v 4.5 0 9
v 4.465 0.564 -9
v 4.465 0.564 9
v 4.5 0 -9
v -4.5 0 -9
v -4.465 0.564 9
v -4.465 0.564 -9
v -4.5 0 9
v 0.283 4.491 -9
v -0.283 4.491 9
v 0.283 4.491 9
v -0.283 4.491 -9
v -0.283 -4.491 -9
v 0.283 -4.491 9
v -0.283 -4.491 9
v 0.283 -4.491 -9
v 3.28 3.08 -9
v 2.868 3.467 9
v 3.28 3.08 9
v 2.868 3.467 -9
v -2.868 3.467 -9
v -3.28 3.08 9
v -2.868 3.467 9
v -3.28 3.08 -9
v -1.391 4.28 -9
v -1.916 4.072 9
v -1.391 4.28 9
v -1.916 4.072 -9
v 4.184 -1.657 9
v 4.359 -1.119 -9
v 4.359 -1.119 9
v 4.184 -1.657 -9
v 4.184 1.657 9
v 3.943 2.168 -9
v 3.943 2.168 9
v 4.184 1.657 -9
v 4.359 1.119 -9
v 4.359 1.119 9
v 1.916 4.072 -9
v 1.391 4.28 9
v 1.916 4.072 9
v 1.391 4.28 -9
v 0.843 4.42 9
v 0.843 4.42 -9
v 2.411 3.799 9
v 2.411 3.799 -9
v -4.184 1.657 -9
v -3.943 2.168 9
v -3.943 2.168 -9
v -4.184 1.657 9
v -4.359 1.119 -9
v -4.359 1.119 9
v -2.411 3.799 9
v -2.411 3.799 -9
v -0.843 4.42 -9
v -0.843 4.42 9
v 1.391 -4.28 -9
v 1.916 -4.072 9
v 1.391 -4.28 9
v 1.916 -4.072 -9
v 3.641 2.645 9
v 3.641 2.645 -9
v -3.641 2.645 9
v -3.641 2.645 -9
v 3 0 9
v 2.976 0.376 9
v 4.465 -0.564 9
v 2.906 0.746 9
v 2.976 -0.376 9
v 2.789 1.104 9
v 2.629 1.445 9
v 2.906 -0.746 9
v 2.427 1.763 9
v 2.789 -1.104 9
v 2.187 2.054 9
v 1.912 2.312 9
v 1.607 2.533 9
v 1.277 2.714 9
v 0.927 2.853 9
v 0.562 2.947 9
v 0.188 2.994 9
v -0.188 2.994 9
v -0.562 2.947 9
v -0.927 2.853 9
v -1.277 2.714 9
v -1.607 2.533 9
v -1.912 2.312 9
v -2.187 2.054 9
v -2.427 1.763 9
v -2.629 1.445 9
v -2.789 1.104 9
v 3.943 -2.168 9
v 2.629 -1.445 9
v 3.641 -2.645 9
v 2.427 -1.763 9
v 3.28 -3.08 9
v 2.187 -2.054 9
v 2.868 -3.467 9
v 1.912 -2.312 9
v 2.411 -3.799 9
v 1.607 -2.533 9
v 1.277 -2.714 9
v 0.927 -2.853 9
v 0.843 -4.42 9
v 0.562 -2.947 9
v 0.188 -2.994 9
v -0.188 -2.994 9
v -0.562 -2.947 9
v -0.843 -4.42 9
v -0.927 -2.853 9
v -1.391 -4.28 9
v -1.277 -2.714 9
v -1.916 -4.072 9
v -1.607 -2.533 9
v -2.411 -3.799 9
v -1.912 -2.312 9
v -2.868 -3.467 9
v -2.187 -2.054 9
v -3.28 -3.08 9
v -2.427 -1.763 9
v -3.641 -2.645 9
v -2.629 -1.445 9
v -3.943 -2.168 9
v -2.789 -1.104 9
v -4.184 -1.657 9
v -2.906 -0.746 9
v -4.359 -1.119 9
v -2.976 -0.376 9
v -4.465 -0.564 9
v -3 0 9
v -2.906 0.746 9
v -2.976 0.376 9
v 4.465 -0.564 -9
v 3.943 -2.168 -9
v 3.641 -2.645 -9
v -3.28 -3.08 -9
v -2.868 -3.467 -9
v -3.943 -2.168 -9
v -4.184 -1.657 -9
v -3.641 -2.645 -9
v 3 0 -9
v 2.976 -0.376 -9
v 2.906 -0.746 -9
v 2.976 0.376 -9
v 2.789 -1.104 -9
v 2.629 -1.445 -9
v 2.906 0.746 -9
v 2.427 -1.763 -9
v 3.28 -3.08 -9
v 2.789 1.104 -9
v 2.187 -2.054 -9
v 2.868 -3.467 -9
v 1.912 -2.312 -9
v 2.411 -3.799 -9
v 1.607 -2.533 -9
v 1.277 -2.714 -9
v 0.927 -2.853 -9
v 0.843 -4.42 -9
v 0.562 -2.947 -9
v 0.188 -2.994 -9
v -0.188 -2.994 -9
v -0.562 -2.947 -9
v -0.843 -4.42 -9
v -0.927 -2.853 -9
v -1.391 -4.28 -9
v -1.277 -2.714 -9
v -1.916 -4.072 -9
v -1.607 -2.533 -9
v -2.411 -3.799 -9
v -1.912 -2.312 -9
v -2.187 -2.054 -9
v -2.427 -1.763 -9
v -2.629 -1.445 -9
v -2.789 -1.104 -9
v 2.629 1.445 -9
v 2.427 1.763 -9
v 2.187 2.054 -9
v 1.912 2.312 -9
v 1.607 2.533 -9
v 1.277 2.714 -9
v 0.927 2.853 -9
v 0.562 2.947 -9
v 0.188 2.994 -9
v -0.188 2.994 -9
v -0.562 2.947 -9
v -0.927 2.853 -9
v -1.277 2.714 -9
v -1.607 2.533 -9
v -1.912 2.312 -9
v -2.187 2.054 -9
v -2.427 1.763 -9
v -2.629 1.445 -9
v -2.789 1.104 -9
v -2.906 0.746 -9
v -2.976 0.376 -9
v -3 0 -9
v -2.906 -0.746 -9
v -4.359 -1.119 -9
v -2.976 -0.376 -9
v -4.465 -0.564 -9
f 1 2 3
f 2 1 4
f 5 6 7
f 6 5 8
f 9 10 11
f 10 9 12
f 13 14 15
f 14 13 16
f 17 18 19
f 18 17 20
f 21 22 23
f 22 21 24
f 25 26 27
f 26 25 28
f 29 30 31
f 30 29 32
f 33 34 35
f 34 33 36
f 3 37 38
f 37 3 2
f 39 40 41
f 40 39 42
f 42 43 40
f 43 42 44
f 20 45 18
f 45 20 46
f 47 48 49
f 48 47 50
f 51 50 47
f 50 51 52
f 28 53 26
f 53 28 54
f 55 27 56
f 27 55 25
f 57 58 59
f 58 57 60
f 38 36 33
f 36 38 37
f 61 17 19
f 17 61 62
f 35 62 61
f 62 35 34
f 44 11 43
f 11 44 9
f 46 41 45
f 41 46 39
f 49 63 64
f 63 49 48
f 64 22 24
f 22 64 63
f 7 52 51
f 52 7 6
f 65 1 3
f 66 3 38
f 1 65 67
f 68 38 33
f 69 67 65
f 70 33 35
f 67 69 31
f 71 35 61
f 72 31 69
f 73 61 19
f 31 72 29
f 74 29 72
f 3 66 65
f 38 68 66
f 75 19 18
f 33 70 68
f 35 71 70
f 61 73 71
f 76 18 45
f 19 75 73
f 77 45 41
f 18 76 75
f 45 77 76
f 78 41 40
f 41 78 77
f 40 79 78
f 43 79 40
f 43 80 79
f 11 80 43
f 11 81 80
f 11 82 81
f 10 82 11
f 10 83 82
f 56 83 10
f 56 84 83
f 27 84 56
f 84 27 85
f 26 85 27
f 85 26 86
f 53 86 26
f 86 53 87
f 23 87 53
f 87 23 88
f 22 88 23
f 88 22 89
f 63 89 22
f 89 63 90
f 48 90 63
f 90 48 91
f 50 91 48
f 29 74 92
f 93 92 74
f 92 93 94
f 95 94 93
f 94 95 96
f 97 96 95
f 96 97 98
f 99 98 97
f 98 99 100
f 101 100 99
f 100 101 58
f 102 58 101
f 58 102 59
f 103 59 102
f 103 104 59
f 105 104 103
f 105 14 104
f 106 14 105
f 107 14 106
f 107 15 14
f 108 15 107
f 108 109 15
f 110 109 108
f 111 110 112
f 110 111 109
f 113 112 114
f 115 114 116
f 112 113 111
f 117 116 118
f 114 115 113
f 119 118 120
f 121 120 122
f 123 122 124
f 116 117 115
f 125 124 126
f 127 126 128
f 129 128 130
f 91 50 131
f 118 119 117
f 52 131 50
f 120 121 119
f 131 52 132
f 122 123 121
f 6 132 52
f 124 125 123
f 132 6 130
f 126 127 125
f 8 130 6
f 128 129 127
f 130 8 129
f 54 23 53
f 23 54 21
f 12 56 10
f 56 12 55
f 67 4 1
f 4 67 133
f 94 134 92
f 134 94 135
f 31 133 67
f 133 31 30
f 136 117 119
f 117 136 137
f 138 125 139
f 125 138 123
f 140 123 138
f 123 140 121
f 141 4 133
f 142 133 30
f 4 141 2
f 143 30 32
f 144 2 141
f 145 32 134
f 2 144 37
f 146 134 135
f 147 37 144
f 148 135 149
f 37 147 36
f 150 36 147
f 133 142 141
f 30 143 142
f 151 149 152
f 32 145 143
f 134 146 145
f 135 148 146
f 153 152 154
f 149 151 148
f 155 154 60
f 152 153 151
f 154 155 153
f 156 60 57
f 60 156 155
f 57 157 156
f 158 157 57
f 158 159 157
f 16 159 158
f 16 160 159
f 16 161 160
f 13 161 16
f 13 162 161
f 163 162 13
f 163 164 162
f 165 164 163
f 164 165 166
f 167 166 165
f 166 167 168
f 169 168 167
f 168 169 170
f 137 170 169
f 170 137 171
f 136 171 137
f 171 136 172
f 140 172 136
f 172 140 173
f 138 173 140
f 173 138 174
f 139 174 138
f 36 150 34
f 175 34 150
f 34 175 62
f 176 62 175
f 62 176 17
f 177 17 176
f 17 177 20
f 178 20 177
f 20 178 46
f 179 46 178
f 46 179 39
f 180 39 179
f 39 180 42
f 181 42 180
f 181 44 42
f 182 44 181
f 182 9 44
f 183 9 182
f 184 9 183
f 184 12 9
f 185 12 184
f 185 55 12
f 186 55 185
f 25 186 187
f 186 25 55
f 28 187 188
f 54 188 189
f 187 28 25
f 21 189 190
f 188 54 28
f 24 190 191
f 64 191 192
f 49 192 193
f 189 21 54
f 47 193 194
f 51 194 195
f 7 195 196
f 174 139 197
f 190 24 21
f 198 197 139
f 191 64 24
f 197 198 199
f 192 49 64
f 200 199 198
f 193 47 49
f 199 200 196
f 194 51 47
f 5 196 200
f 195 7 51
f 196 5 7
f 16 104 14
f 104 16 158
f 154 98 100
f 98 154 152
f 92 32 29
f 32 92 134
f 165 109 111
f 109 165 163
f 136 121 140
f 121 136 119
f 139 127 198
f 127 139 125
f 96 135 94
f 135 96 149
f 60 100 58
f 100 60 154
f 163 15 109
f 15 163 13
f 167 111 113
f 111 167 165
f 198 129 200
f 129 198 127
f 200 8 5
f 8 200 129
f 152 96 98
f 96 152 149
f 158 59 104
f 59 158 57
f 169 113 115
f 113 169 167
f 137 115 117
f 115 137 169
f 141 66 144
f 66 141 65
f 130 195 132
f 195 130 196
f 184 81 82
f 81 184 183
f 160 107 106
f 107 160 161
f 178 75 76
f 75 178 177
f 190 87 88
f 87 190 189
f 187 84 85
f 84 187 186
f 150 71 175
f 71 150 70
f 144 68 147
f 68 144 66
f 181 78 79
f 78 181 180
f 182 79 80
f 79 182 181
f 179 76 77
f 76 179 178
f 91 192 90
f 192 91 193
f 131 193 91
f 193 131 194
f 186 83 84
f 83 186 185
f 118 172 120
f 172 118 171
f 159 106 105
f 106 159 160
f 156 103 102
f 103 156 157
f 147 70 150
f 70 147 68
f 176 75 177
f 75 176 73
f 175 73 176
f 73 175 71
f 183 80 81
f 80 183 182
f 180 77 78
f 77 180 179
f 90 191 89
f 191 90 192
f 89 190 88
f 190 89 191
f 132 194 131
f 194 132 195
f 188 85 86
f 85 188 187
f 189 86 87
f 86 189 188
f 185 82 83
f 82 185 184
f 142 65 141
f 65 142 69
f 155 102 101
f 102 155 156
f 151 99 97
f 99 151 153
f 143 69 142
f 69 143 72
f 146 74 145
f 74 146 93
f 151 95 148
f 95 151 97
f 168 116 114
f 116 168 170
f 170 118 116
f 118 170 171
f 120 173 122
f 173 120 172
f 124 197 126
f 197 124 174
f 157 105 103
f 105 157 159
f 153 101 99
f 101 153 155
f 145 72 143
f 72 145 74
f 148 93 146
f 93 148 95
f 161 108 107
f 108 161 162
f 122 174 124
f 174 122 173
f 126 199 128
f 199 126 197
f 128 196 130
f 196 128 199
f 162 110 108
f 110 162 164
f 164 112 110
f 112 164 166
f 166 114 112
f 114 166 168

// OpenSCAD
$fn = 50;


difference() {
	union() {
		translate(v = [0, 0, -9.0000000000]) {
			cylinder(h = 18, r = 4.5000000000);
		}
	}
	union() {
		translate(v = [0, 0, -100.0000000000]) {
			cylinder(h = 200, r = 3);
		}
	}
}
